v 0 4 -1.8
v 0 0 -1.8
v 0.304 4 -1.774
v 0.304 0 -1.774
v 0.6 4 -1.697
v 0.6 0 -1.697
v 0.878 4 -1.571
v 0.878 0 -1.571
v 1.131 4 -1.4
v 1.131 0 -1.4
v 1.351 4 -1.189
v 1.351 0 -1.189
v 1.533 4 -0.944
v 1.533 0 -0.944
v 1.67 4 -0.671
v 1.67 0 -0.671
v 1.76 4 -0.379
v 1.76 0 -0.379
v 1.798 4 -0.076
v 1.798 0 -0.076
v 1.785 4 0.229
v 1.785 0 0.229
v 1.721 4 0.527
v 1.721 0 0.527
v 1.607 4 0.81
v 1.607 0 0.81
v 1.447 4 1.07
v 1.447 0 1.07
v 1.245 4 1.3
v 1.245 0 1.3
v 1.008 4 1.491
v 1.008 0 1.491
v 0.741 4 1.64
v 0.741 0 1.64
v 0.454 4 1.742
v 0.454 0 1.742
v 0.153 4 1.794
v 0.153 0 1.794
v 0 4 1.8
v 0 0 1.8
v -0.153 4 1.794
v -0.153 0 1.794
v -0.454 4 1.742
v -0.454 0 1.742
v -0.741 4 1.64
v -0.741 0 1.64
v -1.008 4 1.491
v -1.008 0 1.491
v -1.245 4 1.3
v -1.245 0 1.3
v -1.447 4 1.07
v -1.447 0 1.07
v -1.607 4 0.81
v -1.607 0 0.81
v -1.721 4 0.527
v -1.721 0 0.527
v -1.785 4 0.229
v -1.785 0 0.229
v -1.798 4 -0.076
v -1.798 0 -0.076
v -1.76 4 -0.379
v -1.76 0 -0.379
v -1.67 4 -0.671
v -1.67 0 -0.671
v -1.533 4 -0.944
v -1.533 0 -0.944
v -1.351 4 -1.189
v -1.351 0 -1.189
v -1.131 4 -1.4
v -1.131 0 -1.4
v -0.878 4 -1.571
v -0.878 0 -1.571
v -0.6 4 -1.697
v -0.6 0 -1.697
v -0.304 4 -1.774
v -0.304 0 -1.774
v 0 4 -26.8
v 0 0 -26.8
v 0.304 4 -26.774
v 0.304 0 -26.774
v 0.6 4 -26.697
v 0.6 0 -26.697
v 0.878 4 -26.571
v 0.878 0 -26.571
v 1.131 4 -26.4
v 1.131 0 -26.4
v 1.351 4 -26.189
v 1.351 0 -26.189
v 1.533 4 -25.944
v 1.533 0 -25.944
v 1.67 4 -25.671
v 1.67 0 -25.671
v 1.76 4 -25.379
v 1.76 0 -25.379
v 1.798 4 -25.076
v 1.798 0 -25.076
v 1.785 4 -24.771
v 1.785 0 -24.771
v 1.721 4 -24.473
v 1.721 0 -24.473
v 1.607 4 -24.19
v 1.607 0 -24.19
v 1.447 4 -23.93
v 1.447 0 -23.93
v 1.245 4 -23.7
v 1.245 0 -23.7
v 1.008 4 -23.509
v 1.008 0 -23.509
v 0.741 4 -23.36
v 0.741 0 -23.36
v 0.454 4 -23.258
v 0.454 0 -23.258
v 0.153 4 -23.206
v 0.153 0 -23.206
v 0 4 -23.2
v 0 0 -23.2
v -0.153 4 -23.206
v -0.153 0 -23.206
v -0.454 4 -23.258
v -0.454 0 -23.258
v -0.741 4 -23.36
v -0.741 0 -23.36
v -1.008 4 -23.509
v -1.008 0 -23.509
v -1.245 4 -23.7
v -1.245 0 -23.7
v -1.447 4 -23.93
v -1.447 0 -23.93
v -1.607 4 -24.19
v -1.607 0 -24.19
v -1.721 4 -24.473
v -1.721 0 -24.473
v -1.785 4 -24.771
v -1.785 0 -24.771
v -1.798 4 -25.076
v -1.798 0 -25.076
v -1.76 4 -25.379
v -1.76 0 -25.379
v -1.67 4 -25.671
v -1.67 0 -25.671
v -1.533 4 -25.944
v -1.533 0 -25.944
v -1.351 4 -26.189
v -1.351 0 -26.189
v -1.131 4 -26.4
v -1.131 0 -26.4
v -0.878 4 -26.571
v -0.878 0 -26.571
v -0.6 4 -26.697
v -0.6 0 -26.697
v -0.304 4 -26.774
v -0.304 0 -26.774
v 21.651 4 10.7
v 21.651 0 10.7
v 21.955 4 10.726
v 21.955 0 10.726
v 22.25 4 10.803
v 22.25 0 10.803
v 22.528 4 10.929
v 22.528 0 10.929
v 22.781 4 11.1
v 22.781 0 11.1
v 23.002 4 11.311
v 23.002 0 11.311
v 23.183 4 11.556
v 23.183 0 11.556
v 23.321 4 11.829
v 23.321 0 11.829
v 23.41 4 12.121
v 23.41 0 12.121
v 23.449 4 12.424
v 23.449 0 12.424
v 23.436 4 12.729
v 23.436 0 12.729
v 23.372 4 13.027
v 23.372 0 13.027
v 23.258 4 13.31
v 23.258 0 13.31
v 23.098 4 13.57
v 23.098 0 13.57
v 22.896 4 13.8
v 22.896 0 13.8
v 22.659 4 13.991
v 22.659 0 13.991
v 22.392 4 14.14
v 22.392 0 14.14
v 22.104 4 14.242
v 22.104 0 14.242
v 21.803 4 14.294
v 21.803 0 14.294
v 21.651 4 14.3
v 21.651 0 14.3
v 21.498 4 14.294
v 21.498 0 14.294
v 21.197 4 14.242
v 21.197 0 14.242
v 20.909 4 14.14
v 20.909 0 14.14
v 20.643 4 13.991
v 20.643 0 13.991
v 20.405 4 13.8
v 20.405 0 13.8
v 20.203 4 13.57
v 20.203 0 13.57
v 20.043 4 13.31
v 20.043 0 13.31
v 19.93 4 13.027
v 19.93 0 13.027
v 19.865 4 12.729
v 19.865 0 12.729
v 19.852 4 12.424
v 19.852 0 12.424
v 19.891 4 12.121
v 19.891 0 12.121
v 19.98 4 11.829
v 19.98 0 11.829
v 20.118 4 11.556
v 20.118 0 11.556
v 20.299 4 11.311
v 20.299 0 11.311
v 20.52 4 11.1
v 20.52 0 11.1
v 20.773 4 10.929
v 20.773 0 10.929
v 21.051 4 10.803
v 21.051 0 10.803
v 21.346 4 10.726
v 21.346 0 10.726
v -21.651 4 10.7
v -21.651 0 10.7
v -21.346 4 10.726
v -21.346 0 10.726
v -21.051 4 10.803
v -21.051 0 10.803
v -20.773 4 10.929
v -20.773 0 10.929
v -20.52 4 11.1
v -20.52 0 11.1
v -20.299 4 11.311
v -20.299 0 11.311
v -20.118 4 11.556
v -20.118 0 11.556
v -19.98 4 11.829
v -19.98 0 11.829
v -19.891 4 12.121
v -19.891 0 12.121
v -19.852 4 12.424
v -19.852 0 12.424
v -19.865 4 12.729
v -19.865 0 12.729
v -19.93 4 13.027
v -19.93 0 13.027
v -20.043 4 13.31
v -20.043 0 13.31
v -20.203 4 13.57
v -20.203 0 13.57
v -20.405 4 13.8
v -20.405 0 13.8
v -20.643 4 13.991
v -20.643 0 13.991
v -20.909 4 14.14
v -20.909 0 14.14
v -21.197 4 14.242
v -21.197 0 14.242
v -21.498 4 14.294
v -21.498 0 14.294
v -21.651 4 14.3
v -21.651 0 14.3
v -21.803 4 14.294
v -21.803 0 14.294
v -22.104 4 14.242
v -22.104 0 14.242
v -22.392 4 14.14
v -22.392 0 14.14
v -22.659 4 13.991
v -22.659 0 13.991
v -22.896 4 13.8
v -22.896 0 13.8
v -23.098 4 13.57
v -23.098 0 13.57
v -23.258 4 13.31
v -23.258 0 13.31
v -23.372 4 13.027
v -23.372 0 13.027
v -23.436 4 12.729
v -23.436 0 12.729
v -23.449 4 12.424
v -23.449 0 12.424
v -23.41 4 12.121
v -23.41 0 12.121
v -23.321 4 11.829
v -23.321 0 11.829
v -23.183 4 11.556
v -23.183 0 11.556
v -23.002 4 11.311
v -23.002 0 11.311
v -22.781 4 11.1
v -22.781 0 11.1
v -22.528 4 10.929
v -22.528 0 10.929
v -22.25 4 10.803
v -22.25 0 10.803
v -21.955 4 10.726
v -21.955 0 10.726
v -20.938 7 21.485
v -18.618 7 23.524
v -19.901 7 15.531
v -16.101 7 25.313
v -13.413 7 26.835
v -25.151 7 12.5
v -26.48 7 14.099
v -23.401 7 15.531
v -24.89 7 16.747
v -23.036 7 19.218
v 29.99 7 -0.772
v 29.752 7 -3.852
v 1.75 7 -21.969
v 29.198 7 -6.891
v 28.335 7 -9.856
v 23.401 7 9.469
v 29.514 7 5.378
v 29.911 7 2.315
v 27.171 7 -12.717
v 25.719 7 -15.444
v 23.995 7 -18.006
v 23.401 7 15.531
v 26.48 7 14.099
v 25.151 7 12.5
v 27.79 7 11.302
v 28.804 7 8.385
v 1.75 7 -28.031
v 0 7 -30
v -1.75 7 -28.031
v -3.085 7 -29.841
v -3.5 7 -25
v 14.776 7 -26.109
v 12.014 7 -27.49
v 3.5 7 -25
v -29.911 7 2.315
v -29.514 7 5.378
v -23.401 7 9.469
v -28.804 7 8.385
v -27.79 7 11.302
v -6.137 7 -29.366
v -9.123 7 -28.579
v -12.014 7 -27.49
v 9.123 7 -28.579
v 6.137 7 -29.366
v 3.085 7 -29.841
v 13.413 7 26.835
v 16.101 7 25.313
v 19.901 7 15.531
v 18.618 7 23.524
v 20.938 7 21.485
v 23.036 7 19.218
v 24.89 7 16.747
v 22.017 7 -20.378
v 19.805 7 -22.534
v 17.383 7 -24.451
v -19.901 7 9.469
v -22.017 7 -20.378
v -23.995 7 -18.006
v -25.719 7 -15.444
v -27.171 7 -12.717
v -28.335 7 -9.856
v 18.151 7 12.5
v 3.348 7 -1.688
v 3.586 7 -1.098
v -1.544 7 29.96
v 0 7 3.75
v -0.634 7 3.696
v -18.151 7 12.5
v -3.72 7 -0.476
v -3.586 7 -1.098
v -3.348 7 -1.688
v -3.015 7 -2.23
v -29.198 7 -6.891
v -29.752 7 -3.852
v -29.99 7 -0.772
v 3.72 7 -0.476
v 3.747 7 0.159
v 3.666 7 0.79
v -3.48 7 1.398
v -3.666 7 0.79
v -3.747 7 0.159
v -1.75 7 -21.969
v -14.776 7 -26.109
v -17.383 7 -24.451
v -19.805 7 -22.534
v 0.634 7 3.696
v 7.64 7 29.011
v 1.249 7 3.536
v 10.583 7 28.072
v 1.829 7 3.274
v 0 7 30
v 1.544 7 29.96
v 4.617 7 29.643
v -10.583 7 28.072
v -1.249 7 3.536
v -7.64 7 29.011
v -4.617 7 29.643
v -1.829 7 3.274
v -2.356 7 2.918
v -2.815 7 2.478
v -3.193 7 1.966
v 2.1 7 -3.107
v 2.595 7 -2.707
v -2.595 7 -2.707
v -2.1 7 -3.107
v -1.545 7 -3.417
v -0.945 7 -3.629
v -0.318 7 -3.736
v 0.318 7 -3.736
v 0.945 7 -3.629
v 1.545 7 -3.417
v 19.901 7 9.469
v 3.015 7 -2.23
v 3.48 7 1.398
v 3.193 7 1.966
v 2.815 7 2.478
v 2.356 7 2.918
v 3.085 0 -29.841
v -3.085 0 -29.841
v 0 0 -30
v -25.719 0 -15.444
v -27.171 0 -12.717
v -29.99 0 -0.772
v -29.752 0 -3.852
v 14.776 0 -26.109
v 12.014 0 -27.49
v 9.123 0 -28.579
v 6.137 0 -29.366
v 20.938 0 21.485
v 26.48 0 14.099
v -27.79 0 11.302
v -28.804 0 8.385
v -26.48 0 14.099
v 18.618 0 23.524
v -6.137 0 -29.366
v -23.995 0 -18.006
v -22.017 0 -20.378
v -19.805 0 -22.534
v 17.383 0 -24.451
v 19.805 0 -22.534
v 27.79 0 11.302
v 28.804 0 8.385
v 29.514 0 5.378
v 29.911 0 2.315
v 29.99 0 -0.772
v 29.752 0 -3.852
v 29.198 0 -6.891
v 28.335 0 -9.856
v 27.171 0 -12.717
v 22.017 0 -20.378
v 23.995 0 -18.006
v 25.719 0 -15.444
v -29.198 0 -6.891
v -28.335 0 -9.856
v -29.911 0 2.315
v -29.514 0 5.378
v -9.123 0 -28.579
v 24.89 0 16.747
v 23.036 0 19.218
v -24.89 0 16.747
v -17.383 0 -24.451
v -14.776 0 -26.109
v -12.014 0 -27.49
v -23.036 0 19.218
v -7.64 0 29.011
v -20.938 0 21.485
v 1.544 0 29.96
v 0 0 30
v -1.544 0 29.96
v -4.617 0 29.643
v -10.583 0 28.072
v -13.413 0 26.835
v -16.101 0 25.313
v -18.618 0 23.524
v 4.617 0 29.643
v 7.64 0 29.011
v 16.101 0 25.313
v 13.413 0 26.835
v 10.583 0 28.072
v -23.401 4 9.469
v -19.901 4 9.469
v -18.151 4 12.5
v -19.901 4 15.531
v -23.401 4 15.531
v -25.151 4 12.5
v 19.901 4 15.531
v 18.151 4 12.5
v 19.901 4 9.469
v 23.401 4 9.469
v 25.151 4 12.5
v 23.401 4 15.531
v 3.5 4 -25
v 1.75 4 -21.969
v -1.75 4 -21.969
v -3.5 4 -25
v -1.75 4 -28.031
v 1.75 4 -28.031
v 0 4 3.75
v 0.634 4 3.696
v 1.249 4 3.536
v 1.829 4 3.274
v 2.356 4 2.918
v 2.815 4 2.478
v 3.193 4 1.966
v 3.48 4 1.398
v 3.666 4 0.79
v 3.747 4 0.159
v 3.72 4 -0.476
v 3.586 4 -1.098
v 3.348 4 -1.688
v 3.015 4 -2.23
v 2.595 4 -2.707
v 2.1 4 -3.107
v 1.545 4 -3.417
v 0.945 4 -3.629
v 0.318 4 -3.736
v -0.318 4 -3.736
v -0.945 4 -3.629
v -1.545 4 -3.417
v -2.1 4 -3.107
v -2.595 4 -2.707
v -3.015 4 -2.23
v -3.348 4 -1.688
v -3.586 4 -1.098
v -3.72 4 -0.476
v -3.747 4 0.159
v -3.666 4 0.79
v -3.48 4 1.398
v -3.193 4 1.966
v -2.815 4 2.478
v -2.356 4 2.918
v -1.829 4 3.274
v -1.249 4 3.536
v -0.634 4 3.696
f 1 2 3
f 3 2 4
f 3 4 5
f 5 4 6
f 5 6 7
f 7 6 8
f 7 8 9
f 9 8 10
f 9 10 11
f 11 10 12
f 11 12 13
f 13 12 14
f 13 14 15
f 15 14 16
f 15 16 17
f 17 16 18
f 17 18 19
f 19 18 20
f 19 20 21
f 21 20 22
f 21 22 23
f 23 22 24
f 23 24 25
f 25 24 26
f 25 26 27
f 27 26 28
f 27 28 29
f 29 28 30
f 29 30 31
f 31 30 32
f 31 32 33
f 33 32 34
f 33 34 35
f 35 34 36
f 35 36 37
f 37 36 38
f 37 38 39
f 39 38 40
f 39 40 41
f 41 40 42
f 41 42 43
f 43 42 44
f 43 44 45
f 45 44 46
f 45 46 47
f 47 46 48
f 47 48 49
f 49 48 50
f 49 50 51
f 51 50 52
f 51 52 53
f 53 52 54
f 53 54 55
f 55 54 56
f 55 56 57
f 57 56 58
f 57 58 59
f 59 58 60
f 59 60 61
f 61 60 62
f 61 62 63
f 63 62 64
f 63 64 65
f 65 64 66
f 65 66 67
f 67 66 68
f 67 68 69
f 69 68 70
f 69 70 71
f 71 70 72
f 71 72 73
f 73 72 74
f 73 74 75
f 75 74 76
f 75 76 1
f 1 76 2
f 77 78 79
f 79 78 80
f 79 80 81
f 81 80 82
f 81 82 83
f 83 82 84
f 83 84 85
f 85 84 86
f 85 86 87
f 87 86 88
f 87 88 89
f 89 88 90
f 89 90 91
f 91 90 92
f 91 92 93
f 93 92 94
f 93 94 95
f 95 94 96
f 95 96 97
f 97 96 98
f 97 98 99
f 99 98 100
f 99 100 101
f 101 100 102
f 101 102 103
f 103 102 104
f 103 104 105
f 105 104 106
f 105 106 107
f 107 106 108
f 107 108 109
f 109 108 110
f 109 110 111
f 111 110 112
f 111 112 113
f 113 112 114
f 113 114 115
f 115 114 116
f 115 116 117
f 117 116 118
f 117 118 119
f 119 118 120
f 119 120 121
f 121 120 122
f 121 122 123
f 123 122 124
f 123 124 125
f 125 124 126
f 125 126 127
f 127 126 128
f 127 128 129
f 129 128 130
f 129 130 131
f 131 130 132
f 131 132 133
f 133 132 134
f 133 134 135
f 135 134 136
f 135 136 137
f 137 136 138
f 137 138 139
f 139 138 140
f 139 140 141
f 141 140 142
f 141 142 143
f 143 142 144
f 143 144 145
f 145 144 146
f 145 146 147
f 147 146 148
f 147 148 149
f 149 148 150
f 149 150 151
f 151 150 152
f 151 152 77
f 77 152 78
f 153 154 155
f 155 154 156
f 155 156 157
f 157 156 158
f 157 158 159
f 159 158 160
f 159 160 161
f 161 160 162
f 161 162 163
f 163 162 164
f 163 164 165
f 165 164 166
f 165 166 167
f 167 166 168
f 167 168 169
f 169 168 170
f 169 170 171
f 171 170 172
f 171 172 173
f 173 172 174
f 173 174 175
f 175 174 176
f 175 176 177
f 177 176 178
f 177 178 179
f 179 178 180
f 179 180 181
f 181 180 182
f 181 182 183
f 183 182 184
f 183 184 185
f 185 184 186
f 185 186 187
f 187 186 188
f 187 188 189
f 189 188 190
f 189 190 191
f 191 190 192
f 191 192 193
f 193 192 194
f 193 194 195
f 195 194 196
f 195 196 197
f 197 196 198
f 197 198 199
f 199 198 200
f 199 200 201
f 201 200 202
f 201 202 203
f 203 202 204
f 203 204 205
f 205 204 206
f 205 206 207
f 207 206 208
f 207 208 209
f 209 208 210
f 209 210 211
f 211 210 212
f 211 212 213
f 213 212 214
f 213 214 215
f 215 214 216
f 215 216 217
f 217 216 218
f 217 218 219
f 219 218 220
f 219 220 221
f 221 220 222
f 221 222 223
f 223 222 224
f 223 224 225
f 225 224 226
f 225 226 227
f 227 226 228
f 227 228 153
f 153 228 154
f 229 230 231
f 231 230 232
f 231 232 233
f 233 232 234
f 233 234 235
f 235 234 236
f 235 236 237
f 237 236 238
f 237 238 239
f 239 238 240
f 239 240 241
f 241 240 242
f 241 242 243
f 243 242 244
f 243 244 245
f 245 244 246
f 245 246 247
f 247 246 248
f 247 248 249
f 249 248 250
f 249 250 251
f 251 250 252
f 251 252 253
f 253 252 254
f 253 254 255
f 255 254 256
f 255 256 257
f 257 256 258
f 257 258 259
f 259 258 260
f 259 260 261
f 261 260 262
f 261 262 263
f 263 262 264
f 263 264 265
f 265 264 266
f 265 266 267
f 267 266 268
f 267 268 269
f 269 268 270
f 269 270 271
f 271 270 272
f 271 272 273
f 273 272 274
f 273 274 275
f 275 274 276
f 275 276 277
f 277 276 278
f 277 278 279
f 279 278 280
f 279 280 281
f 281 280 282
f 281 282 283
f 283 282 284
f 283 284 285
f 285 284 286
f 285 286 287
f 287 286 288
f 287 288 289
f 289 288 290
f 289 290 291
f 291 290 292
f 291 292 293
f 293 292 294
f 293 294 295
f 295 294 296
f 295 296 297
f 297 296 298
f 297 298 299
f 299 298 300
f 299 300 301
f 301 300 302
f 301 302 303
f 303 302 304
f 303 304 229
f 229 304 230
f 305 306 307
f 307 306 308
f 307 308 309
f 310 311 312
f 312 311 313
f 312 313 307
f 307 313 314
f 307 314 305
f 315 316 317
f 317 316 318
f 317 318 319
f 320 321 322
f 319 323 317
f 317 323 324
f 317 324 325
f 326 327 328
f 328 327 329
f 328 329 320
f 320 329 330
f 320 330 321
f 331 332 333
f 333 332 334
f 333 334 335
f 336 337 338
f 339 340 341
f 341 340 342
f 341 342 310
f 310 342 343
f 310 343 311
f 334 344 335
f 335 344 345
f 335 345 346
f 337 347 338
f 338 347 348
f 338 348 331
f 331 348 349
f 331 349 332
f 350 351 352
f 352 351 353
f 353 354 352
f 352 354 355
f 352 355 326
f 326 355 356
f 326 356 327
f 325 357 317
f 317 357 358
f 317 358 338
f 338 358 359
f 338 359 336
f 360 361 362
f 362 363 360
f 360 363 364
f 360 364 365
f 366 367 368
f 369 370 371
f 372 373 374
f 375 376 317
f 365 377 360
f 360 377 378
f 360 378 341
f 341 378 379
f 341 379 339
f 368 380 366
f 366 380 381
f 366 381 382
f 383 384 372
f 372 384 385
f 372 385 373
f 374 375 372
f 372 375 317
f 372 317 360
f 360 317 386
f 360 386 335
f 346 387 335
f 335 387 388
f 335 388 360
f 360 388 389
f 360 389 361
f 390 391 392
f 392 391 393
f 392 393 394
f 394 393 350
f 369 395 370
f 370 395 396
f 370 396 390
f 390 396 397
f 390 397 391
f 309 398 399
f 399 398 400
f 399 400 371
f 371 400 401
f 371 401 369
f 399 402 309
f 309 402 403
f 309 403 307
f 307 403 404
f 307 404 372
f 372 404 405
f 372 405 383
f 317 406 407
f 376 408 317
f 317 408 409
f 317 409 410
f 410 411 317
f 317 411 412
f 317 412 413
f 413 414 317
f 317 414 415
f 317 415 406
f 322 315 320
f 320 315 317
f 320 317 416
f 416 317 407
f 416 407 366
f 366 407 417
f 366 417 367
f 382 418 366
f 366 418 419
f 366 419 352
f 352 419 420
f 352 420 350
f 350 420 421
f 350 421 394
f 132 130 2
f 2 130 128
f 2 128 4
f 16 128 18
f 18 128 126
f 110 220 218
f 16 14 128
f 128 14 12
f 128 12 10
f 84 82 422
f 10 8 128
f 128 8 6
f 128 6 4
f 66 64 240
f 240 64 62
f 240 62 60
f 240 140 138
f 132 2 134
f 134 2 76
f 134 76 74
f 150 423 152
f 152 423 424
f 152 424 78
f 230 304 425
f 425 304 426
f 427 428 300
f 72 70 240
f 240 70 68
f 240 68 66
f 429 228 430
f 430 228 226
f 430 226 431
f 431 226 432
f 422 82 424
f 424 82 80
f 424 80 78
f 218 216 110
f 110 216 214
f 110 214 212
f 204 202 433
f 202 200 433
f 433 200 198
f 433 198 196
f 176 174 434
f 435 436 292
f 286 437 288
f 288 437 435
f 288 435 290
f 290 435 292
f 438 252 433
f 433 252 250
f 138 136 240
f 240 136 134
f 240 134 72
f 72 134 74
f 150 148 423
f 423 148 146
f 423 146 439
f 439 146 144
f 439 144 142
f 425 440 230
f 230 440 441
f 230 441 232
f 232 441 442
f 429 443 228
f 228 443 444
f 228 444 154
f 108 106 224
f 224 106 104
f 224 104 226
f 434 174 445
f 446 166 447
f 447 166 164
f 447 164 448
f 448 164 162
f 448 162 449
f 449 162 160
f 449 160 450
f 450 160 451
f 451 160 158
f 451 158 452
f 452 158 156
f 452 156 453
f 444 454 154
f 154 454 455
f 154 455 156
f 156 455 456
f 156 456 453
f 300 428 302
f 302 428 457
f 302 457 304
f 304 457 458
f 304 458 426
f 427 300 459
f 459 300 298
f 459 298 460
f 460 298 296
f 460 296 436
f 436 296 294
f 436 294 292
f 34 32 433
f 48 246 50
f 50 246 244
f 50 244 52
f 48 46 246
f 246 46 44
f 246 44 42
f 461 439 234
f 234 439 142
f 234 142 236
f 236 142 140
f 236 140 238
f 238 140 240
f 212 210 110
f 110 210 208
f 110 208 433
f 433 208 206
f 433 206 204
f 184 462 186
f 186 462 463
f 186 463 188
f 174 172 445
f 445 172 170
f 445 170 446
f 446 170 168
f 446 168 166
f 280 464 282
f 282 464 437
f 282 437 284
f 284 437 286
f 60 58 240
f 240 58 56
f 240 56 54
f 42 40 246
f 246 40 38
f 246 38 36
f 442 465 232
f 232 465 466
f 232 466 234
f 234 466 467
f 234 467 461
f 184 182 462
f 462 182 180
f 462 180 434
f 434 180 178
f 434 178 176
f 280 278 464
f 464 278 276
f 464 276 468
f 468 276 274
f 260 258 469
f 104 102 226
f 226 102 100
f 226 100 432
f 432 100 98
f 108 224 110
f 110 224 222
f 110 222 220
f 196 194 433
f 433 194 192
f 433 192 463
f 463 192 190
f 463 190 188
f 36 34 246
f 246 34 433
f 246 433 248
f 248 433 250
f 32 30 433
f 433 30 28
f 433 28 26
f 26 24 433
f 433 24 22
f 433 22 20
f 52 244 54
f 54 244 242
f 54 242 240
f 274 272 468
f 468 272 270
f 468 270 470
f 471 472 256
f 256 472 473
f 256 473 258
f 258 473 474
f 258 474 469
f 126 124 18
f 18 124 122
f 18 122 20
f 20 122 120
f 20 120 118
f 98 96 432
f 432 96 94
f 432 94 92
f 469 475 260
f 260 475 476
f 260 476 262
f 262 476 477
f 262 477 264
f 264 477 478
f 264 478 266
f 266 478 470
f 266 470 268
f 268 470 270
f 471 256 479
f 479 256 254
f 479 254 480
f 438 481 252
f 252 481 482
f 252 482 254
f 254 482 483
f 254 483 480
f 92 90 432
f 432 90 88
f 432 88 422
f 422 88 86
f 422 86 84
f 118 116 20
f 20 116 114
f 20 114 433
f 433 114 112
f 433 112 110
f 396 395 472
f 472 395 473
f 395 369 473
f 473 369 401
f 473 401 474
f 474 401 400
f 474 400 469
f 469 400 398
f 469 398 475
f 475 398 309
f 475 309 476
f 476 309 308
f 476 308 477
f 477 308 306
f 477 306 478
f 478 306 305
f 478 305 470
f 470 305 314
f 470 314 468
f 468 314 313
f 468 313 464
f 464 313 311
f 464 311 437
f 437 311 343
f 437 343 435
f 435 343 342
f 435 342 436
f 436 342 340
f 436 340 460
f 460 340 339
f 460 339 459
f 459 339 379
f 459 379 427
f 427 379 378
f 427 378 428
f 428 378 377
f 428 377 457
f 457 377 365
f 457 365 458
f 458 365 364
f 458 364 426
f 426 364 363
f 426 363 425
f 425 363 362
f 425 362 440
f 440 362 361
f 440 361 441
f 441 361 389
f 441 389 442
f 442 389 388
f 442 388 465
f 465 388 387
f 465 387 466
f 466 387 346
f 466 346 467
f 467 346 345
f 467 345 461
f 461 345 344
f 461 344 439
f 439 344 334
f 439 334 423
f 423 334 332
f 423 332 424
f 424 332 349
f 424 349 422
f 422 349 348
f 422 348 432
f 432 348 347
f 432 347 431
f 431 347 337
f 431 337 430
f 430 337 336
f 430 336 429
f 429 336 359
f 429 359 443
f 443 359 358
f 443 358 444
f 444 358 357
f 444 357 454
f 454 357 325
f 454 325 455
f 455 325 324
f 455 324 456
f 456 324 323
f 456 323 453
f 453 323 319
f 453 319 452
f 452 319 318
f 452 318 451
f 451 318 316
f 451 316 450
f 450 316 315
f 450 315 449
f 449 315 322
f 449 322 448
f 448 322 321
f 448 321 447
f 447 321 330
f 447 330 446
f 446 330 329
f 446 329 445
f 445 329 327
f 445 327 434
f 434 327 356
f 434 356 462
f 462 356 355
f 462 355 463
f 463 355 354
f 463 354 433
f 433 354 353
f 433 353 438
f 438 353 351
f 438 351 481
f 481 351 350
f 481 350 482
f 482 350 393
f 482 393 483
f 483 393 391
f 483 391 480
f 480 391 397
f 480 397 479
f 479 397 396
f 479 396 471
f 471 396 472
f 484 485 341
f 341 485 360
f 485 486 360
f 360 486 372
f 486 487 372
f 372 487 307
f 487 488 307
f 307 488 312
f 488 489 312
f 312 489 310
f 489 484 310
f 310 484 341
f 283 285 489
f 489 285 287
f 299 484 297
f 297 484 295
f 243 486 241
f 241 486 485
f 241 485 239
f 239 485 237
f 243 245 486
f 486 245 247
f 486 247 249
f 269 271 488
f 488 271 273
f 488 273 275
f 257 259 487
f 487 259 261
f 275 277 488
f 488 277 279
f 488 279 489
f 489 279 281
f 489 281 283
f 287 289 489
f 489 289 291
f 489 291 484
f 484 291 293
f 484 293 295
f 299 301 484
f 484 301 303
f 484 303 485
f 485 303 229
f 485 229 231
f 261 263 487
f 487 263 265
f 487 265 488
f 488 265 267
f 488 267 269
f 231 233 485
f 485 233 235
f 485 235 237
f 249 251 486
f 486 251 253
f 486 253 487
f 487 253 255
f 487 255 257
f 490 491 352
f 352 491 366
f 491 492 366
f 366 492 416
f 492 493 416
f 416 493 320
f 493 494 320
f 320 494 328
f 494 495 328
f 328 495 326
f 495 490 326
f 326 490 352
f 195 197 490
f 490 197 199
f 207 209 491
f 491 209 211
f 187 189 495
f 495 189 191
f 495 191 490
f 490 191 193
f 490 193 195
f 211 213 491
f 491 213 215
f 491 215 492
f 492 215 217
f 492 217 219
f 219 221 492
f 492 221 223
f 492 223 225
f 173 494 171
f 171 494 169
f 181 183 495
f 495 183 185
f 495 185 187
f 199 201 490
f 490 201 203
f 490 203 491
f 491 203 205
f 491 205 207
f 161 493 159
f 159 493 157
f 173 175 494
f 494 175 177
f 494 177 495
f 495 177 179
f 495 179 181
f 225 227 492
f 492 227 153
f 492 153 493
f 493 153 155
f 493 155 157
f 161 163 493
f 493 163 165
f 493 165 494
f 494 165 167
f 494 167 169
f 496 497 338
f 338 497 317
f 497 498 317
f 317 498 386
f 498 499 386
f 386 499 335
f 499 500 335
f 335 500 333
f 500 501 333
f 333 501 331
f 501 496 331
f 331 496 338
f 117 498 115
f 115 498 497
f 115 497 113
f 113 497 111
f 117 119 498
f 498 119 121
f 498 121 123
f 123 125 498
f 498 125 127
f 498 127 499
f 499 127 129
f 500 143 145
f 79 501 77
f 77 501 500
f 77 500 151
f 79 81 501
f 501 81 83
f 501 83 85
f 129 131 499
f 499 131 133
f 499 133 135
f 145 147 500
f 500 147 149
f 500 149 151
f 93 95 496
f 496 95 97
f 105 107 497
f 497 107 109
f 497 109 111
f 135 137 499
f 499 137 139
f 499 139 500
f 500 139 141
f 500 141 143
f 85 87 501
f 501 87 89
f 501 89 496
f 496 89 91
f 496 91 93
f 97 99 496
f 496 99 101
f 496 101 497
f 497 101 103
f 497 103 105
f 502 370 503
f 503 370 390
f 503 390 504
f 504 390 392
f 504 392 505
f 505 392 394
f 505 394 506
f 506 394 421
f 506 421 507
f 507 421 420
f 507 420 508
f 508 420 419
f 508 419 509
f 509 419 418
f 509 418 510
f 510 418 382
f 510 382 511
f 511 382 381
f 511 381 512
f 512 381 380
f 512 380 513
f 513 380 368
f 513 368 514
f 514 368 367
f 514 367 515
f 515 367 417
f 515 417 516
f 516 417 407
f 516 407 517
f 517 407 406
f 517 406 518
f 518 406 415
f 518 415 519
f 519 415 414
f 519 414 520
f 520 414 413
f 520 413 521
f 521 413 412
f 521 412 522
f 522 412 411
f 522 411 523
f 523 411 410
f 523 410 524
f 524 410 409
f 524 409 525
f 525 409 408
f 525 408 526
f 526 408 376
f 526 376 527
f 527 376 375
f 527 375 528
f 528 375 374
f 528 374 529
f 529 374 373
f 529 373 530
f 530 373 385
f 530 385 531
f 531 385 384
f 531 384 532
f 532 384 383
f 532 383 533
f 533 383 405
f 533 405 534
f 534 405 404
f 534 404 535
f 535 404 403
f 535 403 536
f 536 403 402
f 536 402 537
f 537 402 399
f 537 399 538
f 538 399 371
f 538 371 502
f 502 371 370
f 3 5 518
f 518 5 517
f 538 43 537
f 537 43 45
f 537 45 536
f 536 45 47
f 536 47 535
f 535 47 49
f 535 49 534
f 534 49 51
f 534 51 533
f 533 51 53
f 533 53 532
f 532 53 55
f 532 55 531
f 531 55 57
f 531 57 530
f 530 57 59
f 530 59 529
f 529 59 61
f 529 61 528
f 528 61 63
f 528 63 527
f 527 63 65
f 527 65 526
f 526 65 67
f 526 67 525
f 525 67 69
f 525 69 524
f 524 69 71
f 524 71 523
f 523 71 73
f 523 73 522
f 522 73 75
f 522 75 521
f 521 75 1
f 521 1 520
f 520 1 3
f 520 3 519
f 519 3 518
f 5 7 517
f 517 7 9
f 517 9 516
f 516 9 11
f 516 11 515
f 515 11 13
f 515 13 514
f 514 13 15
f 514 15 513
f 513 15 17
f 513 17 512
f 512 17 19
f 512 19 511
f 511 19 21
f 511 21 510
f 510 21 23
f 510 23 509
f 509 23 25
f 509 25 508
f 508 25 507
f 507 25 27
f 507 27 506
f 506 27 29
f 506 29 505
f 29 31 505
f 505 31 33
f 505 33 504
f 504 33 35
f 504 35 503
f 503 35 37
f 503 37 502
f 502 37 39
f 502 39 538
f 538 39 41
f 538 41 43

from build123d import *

# Parameters (mm, degrees)
SKETCH1_R           = 30
SKETCH1_R_2         = 1.8
BOSS_EXTRUDE1_DEPTH = 7
SKETCH2_R           = 3.75
CUT_EXTRUDE1_DEPTH  = 3


with BuildPart() as part:
    # Sketch1 → Boss-Extrude1 (new body)
    with BuildSketch(Plane(origin=(0, 0, 0), x_dir=(1, 0, 0), z_dir=(0, 1, 0))):
        Circle(SKETCH1_R)
        Circle(SKETCH1_R_2, mode=Mode.SUBTRACT)
        with Locations((0, 25)):
            Circle(SKETCH1_R_2, mode=Mode.SUBTRACT)
        with Locations((21.650635095, -12.5)):
            Circle(SKETCH1_R_2, mode=Mode.SUBTRACT)
        with Locations((-21.650635095, -12.5)):
            Circle(SKETCH1_R_2, mode=Mode.SUBTRACT)
    extrude(amount=BOSS_EXTRUDE1_DEPTH)

    # Sketch2 → Cut-Extrude1 (cut)
    with BuildSketch(Plane(origin=(0, 7, 0), x_dir=(1, 0, 0), z_dir=(0, 1, 0))):
        Circle(SKETCH2_R)
        Polygon((19.900635095, -15.531088913), (23.400635095, -15.531088913), (25.150635095, -12.5), (23.400635095, -9.468911087), (19.900635095, -9.468911087), (18.150635095, -12.5), align=None)
        Polygon((3.5, 25), (1.75, 28.031088913), (-1.75, 28.031088913), (-3.5, 25), (-1.75, 21.968911087), (1.75, 21.968911087), align=None)
        Polygon((-23.400635095, -9.468911087), (-25.150635095, -12.5), (-23.400635095, -15.531088913), (-19.900635095, -15.531088913), (-18.150635095, -12.5), (-19.900635095, -9.468911087), align=None)
    extrude(amount=-CUT_EXTRUDE1_DEPTH, mode=Mode.SUBTRACT)


solid = part.part
